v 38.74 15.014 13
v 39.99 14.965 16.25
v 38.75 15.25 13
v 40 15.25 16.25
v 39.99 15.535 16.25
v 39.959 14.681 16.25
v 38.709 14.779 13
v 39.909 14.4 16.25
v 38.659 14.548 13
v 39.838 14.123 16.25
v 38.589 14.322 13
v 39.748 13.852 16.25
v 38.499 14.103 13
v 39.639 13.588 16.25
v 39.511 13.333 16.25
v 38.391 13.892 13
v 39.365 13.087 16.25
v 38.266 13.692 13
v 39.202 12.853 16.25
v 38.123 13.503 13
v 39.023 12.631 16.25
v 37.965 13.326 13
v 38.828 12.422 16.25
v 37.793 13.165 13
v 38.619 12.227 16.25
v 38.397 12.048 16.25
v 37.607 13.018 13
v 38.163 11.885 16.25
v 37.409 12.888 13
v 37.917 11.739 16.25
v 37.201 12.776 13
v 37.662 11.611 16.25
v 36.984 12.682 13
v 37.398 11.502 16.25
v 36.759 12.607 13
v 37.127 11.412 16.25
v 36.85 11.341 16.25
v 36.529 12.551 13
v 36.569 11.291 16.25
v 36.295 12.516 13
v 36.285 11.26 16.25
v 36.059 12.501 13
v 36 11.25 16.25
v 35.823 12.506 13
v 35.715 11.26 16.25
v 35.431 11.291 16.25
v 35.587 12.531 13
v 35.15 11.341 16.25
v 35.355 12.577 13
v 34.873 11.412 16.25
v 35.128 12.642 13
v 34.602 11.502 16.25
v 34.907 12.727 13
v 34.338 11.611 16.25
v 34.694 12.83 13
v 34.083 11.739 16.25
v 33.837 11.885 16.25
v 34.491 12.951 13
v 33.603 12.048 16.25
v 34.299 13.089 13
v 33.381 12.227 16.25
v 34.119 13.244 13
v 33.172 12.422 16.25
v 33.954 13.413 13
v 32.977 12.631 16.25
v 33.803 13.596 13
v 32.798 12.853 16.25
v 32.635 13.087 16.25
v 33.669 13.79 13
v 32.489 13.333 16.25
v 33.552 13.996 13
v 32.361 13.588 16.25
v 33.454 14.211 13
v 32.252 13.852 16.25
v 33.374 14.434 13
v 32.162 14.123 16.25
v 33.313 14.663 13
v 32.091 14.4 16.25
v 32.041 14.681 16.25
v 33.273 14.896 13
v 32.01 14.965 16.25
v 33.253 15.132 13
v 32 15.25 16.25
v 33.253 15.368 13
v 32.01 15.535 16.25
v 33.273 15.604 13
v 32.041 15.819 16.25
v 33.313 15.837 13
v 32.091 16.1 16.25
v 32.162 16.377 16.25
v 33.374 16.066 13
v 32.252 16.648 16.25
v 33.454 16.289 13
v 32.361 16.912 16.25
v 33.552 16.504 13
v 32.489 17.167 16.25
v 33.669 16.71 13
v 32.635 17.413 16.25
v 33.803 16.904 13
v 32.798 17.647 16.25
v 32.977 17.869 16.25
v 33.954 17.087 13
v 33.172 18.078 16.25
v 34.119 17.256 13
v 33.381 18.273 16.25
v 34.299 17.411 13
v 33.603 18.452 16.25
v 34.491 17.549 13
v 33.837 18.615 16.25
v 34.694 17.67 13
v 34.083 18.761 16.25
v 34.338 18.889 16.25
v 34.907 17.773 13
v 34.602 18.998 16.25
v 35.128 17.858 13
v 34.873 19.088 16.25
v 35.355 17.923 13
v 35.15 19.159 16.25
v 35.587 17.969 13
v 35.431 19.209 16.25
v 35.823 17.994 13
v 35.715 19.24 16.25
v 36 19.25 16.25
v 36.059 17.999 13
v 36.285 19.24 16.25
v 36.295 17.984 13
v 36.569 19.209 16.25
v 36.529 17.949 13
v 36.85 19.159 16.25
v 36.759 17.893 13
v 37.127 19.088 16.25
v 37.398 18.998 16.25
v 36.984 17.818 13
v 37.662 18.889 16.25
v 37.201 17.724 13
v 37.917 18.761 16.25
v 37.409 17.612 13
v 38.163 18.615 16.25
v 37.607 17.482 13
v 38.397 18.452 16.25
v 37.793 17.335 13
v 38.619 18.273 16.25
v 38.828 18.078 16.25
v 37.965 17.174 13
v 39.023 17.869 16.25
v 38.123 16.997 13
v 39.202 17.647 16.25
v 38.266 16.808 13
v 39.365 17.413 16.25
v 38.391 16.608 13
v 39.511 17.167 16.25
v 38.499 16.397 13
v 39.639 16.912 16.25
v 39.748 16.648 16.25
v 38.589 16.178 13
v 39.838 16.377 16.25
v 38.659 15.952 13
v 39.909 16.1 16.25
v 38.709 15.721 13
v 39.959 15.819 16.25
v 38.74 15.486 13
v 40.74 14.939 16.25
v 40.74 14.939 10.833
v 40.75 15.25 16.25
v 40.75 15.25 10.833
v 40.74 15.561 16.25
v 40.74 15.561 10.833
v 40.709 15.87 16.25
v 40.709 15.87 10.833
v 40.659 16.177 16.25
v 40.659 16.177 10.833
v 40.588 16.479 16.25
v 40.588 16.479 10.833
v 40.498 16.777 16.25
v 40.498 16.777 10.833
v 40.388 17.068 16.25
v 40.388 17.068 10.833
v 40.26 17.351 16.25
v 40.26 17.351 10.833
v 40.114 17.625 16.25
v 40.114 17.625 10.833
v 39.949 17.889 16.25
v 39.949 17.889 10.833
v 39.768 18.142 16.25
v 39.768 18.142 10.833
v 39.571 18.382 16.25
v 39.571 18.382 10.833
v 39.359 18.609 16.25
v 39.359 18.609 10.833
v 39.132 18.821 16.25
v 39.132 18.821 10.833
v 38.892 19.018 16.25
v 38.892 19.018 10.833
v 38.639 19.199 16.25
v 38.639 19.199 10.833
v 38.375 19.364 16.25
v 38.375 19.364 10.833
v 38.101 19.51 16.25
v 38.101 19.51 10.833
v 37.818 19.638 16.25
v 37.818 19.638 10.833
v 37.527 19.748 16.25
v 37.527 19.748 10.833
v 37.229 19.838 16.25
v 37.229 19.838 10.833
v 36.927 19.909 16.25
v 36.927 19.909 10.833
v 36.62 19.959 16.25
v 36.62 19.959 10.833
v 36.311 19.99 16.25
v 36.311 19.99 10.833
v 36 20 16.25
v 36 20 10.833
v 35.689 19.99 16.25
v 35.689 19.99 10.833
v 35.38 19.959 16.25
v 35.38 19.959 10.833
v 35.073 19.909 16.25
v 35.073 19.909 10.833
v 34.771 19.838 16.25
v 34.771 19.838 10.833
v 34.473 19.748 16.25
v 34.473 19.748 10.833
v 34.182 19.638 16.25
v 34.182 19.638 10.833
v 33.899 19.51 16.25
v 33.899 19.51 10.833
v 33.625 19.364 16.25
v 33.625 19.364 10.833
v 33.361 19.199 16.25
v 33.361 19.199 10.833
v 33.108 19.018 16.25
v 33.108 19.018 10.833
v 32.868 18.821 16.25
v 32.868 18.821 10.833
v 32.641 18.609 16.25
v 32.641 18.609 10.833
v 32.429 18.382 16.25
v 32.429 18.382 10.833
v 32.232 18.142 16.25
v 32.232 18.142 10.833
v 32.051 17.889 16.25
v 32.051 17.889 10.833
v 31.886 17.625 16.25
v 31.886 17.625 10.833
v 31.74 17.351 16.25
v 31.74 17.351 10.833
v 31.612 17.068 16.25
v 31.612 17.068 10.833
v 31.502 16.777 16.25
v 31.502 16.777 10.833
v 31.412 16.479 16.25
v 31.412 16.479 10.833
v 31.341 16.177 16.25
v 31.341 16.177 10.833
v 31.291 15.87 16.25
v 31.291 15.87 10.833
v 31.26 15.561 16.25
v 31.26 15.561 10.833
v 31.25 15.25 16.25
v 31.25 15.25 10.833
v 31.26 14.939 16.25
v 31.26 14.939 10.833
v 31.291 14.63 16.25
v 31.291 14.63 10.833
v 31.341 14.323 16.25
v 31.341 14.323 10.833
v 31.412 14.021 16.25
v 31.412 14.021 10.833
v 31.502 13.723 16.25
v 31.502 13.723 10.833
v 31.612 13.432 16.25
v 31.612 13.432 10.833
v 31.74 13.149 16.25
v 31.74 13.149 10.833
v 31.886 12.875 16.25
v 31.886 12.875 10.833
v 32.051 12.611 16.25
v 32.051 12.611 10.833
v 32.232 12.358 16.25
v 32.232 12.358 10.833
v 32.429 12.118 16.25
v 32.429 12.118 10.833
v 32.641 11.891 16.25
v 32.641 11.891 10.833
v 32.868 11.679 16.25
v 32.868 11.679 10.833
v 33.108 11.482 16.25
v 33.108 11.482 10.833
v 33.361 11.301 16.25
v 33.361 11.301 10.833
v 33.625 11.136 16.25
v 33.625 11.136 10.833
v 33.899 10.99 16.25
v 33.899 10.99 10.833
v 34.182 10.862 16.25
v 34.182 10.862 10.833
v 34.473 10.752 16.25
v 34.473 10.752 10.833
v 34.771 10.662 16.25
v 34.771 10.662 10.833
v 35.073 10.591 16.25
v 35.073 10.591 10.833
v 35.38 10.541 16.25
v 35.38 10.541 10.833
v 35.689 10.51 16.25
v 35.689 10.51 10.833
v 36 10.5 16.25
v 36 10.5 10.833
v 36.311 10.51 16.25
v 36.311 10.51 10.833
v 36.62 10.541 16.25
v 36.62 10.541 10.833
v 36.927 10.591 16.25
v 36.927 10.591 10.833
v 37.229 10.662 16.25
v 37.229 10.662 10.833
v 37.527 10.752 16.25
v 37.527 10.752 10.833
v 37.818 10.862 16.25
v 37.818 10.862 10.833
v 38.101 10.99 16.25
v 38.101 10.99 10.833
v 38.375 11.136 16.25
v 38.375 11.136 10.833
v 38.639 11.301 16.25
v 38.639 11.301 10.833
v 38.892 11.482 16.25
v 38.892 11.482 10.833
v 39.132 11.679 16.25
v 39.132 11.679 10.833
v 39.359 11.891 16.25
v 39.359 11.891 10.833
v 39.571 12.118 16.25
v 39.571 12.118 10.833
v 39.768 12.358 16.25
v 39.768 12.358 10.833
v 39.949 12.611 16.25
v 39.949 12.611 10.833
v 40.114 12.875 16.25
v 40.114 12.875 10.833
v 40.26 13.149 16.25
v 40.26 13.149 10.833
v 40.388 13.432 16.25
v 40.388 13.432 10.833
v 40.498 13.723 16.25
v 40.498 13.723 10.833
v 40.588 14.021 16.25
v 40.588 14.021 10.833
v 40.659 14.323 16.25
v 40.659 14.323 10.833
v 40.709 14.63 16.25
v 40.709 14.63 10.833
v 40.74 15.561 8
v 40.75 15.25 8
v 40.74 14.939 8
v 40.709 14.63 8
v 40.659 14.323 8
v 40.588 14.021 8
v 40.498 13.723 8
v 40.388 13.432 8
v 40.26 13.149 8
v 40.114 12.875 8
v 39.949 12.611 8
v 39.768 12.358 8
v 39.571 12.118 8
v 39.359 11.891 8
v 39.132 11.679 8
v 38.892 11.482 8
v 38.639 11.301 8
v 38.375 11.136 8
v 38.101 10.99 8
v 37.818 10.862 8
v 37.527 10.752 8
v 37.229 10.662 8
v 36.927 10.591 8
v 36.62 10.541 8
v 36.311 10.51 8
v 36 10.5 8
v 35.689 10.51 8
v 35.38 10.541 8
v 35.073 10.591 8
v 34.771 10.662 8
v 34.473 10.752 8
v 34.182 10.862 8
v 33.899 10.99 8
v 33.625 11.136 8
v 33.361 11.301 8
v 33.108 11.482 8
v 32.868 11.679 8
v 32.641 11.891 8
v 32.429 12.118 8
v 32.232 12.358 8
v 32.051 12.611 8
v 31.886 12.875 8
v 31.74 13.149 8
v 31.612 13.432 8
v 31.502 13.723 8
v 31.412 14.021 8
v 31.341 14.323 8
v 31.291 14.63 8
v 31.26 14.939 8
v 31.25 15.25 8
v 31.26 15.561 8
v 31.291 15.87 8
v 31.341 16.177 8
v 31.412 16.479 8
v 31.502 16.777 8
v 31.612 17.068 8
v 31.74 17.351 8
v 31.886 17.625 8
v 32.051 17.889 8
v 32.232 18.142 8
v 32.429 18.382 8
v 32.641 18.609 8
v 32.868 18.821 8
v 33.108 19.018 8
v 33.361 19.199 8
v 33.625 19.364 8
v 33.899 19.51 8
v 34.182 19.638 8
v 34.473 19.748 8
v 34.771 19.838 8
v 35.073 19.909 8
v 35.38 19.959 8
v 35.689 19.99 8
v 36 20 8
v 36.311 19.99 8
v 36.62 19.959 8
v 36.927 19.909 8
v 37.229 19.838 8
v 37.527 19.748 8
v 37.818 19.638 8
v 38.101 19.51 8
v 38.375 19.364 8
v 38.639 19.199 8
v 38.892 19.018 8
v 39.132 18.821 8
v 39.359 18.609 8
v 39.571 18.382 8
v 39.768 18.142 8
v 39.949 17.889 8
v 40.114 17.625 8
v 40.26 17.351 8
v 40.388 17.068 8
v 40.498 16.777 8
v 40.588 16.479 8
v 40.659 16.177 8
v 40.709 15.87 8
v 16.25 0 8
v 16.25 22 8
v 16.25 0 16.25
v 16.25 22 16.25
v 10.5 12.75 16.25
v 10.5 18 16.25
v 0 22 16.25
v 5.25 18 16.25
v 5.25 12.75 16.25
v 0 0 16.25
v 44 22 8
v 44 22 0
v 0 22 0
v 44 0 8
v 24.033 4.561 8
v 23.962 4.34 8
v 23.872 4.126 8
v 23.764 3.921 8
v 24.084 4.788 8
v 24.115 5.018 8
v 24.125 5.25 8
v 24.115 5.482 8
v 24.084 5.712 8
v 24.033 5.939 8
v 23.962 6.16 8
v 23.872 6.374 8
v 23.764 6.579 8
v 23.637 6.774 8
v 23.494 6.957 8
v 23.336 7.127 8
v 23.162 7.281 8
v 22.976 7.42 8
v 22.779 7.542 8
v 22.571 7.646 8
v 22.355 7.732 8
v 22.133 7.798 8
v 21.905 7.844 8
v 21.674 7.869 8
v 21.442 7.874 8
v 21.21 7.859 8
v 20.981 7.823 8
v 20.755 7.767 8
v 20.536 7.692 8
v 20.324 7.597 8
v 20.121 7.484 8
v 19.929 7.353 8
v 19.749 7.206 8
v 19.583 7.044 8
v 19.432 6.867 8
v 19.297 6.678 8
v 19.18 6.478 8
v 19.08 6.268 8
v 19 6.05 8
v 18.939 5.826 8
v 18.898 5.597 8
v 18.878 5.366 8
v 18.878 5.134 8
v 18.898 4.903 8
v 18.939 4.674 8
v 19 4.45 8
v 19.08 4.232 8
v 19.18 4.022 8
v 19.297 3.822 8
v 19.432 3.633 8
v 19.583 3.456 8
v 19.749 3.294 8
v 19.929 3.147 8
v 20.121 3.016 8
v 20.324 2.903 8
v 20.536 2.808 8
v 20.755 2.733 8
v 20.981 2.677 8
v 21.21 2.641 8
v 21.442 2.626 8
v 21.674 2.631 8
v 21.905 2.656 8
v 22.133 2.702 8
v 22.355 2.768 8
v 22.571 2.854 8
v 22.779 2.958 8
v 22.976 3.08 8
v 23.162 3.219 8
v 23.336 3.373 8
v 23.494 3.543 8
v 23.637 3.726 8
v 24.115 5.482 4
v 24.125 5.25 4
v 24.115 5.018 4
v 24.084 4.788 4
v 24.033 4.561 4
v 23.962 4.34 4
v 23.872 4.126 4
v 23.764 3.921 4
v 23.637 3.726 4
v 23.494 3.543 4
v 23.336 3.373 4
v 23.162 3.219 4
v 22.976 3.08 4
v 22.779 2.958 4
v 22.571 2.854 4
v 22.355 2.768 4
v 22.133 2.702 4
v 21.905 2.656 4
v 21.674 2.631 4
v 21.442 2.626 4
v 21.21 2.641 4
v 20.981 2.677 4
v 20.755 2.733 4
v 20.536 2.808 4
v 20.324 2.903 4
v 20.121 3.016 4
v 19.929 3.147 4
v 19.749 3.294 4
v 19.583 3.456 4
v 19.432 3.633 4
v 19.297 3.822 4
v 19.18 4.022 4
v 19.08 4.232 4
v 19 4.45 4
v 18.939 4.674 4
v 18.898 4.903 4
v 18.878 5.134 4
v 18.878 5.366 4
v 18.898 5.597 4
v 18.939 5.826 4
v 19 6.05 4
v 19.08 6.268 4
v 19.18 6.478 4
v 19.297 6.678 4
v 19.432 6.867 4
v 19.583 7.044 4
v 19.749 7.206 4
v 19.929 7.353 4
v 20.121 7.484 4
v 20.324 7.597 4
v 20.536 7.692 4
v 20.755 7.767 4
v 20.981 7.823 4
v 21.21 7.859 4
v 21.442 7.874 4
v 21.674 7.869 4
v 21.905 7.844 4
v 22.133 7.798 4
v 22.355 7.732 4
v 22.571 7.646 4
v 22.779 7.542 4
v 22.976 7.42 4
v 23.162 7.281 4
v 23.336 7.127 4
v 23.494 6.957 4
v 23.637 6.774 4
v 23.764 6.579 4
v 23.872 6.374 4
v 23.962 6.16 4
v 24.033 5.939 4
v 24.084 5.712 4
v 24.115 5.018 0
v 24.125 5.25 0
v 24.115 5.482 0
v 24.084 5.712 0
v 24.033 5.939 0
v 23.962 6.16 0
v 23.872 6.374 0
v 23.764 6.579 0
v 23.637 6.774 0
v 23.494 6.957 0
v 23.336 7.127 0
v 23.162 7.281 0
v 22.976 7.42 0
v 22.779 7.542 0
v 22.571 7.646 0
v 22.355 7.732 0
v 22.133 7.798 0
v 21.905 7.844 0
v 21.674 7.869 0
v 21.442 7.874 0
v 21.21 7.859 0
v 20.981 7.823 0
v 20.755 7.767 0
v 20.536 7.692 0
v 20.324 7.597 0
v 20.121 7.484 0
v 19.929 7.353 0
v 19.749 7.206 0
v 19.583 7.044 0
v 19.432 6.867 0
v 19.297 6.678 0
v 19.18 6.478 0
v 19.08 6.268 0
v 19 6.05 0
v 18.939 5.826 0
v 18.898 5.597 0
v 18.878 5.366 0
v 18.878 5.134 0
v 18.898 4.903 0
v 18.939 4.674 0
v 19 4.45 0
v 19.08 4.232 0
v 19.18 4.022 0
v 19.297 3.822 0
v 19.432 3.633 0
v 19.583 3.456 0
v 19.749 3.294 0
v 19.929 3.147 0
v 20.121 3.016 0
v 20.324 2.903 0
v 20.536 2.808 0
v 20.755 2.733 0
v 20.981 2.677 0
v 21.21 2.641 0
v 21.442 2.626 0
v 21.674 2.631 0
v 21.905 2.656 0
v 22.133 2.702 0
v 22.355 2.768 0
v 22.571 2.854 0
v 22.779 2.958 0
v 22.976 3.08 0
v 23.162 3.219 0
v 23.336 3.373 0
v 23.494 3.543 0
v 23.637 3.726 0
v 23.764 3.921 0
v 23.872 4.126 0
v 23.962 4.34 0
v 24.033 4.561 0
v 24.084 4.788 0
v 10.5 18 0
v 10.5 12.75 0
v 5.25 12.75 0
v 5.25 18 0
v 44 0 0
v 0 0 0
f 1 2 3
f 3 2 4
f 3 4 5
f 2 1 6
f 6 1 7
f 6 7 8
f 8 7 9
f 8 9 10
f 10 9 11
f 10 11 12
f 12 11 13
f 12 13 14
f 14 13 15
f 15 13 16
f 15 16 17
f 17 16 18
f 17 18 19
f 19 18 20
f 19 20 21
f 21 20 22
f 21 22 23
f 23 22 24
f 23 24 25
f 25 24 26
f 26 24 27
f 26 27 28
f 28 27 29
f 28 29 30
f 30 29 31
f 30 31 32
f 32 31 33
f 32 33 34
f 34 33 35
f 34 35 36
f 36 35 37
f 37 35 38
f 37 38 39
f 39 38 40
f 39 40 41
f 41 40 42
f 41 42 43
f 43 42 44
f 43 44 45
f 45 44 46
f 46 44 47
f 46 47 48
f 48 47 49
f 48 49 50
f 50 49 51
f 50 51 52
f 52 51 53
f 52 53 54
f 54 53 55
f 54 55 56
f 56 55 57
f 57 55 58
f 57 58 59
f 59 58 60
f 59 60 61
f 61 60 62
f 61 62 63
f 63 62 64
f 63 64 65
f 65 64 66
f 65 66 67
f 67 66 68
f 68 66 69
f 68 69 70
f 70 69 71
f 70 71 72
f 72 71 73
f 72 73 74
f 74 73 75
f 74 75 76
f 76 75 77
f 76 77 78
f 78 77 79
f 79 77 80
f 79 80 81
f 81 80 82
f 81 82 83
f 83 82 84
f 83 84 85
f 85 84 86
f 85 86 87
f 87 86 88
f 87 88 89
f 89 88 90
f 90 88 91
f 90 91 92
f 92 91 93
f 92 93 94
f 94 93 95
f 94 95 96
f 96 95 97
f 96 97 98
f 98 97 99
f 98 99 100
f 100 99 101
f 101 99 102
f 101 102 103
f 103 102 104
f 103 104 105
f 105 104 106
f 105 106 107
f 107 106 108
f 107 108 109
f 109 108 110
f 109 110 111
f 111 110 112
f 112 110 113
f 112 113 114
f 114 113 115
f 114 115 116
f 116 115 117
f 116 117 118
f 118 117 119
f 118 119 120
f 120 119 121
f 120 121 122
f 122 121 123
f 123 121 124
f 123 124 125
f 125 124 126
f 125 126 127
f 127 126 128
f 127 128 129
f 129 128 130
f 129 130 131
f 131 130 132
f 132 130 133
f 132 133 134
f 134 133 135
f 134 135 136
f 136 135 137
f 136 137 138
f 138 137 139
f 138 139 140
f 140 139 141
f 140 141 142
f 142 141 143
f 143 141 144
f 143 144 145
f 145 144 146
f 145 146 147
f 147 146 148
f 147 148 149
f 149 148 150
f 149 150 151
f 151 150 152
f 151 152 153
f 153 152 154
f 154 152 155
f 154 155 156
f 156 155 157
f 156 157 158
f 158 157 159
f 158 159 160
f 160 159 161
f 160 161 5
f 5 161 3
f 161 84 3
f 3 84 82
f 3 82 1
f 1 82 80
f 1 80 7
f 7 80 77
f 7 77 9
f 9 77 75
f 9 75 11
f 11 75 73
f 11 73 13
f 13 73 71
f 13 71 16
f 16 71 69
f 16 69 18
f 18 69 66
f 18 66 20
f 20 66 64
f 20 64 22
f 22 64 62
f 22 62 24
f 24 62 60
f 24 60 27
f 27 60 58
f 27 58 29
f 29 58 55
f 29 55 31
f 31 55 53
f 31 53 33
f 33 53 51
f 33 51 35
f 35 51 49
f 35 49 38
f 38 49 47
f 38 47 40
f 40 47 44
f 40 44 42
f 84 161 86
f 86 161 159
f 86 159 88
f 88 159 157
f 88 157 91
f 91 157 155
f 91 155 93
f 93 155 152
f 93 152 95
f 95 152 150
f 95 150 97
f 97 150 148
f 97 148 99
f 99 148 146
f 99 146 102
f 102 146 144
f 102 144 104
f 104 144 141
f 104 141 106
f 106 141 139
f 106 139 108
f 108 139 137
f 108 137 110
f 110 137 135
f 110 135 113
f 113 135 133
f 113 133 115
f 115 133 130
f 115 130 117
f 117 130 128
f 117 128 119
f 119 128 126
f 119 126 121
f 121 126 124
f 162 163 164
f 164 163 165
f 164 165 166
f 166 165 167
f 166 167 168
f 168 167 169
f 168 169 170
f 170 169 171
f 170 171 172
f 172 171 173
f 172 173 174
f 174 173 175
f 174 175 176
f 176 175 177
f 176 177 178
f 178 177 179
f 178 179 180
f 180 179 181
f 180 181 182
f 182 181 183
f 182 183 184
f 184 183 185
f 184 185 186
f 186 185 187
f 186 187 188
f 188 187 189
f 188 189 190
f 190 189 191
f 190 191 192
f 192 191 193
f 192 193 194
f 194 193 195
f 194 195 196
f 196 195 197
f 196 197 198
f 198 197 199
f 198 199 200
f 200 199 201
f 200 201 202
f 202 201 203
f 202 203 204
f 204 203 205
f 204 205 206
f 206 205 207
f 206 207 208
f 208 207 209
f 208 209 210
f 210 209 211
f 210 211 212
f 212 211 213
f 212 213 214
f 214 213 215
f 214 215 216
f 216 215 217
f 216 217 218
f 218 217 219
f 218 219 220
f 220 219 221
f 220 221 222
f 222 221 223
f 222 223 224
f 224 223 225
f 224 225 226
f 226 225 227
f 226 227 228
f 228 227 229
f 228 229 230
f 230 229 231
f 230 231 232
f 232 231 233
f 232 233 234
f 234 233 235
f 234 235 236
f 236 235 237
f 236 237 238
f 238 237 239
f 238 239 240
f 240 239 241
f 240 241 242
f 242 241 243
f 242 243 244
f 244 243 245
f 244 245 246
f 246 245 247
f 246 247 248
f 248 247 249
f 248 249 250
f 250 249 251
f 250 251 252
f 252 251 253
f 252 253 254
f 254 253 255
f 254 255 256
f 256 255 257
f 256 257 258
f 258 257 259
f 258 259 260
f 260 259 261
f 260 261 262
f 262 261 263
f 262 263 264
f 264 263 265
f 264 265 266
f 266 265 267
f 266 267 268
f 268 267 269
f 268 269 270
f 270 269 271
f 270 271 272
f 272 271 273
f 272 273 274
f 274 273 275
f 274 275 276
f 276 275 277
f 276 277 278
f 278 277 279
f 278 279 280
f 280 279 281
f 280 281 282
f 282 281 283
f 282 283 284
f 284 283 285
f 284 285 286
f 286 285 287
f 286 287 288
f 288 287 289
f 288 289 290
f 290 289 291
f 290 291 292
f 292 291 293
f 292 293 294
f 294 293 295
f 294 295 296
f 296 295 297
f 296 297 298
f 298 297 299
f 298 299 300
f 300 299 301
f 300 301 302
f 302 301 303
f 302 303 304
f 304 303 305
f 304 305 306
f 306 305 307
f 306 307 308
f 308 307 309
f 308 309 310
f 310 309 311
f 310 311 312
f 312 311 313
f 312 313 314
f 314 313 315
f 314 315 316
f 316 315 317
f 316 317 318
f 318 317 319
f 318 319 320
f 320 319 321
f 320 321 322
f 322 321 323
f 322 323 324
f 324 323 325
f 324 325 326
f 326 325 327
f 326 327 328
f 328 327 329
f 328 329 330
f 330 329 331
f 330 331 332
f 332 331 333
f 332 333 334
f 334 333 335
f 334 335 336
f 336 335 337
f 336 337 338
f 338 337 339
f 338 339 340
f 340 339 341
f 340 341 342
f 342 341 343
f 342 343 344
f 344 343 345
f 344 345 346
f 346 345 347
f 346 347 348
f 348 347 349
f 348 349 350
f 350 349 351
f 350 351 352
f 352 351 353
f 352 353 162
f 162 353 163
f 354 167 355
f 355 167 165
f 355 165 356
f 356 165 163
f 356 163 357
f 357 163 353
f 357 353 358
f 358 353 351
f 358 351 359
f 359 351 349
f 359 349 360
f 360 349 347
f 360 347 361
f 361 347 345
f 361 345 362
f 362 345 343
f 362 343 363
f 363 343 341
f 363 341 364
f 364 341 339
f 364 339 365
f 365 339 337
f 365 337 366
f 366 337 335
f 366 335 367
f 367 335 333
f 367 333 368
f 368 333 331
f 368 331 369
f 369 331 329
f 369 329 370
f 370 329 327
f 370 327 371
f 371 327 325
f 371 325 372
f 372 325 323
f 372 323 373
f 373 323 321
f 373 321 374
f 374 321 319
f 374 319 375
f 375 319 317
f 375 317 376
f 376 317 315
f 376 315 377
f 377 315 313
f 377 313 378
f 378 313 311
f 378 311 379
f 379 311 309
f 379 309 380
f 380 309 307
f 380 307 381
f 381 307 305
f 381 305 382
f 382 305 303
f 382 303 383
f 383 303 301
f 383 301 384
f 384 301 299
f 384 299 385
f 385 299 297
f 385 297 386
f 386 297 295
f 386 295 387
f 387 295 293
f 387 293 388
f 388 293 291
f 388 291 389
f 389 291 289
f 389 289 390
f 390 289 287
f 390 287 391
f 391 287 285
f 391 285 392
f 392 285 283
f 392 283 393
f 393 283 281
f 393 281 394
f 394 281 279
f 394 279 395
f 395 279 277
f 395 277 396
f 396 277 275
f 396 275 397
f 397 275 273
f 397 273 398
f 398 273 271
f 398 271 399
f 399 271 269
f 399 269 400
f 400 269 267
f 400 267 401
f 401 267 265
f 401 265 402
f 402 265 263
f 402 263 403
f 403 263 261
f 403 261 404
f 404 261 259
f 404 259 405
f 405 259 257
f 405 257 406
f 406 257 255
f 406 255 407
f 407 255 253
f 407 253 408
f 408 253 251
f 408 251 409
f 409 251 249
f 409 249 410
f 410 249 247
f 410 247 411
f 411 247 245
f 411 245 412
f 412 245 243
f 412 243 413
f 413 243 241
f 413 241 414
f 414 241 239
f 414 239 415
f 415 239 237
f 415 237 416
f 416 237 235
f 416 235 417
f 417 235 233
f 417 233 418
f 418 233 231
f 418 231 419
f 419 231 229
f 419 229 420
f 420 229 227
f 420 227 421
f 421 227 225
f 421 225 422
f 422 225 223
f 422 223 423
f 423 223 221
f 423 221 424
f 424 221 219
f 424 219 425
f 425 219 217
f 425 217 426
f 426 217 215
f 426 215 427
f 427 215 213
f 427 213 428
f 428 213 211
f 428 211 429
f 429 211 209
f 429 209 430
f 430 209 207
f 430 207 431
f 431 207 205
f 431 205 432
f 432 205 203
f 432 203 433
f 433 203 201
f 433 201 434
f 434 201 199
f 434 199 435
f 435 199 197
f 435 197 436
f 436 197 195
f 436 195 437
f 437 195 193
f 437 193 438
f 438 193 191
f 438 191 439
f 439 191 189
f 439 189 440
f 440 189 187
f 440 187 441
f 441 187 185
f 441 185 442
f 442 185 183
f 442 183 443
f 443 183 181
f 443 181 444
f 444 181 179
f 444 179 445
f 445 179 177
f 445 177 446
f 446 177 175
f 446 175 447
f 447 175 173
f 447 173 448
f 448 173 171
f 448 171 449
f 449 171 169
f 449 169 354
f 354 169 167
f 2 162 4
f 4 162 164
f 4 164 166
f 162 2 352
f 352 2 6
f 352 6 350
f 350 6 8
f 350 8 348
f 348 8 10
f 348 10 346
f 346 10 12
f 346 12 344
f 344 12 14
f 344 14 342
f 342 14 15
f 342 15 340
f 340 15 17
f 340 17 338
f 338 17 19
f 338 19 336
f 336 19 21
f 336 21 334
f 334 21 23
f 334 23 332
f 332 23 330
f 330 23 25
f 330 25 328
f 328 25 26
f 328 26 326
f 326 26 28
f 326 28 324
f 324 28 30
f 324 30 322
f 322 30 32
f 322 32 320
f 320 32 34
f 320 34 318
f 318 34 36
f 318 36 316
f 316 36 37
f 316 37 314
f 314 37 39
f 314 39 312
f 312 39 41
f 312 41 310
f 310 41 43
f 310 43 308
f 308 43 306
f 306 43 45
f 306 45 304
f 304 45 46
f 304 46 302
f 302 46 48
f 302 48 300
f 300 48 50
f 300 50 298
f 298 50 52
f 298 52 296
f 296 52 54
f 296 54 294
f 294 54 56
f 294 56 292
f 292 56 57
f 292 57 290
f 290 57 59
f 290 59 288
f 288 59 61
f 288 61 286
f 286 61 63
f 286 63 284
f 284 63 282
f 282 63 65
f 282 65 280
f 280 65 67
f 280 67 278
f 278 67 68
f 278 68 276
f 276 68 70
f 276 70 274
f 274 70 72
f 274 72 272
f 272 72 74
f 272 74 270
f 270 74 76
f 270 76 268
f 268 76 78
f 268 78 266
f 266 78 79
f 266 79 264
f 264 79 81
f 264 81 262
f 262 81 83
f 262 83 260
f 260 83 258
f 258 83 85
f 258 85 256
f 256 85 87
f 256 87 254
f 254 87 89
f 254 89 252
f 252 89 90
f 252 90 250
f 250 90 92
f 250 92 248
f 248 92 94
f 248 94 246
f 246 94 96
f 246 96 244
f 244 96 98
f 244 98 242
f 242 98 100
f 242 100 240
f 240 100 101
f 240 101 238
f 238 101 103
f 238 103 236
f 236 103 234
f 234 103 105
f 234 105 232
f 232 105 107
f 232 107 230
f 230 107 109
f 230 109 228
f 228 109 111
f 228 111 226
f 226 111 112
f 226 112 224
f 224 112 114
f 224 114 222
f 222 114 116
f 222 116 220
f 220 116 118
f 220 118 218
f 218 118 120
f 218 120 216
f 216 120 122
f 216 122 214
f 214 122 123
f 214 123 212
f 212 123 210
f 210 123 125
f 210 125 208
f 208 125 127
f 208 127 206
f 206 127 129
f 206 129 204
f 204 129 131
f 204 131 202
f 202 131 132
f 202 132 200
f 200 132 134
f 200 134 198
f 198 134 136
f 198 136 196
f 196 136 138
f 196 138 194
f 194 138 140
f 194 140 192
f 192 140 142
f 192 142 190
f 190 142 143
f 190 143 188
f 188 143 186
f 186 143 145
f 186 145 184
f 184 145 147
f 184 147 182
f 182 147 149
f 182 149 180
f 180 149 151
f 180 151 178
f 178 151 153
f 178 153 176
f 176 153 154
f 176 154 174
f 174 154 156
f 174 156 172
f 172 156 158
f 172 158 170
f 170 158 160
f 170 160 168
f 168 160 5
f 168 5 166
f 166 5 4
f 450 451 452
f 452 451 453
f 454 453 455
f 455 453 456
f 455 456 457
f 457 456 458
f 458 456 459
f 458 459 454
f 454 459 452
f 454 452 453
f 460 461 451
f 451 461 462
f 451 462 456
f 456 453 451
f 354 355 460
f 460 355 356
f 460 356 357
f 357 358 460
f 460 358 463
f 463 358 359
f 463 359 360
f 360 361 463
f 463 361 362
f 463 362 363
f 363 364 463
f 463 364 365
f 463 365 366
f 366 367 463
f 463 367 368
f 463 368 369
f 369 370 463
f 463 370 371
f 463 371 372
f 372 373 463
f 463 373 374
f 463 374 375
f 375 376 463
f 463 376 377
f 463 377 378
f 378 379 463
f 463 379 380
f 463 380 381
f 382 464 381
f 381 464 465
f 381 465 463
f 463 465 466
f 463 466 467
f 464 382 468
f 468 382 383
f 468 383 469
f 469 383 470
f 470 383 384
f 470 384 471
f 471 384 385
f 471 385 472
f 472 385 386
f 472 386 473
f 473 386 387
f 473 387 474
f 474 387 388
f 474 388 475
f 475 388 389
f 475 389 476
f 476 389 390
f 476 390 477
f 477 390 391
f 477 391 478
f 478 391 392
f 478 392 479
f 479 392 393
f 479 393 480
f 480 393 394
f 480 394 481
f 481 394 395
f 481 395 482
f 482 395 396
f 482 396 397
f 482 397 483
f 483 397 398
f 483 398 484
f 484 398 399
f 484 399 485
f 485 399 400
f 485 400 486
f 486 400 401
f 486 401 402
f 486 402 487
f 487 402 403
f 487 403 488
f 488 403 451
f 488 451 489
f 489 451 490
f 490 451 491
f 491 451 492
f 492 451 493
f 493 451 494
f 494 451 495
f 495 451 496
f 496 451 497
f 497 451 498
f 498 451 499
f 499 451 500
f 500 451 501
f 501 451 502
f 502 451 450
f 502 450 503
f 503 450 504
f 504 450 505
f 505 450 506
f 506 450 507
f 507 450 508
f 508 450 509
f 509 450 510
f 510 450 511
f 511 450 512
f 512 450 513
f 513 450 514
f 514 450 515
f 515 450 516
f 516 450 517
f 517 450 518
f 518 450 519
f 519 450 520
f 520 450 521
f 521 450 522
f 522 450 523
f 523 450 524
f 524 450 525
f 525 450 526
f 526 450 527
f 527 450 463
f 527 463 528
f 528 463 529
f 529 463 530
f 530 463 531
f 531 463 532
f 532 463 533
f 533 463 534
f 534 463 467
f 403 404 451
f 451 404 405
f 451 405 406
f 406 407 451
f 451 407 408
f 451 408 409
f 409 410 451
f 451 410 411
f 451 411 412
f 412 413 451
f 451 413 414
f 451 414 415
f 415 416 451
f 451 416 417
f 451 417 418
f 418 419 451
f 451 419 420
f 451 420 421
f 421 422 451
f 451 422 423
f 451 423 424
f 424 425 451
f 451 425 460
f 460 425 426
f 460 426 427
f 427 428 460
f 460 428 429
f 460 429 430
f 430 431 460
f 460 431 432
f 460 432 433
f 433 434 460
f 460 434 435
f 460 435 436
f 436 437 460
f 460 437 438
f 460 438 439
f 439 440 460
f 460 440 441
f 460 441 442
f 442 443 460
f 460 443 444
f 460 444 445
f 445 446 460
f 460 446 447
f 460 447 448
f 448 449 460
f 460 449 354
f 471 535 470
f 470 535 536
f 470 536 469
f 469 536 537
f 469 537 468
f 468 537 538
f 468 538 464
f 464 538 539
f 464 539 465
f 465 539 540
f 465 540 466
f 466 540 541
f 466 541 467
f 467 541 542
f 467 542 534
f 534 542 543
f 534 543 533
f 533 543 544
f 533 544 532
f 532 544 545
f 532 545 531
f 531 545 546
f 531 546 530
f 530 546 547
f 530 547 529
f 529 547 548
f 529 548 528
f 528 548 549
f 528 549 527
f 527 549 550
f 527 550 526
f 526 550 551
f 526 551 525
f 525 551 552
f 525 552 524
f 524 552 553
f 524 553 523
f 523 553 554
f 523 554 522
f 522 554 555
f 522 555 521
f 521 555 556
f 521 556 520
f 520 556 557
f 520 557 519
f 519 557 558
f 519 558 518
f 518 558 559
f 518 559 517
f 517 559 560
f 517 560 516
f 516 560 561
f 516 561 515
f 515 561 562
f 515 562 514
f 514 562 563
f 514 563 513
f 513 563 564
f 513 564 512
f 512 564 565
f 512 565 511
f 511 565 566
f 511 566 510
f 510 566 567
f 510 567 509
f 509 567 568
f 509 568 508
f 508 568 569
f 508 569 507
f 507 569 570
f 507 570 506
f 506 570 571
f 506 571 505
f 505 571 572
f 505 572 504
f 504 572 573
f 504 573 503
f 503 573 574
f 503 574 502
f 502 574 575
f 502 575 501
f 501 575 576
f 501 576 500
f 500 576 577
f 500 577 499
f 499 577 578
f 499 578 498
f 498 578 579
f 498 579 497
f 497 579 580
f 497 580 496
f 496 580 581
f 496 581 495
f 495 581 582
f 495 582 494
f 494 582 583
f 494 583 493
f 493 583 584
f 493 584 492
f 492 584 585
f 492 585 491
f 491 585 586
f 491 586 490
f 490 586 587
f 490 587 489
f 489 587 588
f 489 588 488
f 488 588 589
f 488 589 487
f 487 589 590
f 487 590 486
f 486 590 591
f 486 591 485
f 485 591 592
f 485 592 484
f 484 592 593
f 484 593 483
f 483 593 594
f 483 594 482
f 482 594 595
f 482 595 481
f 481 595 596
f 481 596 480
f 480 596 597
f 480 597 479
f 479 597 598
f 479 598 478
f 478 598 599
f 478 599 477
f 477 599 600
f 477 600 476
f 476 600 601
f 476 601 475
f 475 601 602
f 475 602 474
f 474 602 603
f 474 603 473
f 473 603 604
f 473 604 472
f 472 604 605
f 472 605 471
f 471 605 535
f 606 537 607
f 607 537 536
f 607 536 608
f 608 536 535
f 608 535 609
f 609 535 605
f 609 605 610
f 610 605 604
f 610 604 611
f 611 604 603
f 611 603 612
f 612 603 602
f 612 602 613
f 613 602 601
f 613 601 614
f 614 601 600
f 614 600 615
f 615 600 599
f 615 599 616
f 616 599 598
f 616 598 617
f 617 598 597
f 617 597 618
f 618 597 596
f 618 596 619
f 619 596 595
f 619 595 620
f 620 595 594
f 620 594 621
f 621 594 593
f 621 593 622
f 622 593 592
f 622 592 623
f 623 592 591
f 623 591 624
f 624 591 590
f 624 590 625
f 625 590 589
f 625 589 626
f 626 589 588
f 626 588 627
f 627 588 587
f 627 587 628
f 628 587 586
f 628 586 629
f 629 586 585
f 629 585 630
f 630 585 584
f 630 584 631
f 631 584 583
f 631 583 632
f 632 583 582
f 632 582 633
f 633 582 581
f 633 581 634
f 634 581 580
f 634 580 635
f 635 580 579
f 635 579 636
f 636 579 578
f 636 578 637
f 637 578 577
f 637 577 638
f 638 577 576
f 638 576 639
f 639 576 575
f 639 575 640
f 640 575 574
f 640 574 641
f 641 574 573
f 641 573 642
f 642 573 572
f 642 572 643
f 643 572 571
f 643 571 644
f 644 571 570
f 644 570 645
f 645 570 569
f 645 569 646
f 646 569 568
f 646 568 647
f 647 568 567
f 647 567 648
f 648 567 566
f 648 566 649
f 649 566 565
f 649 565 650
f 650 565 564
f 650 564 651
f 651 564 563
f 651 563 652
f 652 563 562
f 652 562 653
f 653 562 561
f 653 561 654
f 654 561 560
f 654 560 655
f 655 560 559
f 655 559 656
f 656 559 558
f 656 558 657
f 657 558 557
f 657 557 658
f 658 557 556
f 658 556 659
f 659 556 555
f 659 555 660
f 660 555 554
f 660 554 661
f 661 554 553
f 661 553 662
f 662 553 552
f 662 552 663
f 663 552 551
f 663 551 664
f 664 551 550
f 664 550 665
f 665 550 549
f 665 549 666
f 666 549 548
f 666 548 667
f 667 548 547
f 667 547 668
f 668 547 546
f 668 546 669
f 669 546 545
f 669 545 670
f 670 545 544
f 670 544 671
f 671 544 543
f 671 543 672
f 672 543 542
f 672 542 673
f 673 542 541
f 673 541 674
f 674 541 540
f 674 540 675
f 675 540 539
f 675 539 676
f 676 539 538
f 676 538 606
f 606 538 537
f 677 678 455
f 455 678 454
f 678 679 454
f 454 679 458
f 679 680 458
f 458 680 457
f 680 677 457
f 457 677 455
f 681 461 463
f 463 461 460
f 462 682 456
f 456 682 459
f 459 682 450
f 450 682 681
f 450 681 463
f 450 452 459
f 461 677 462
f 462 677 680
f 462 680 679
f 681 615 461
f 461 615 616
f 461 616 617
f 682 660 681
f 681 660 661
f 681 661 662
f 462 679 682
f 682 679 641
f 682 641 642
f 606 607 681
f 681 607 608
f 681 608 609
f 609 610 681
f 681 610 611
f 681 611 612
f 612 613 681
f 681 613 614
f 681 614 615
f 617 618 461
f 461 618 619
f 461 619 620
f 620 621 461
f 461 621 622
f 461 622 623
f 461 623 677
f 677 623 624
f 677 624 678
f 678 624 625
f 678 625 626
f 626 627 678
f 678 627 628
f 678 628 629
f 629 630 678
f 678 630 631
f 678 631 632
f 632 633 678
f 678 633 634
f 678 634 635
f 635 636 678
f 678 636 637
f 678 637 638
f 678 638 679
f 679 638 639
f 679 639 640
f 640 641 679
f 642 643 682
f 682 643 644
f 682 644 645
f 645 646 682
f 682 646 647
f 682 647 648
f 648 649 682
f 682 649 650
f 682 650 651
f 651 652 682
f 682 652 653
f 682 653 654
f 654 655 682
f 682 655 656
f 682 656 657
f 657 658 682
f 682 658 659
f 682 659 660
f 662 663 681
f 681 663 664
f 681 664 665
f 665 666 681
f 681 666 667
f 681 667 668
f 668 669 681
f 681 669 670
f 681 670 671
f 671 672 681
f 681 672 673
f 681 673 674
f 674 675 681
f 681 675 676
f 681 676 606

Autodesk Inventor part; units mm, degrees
ref_plane "YZ Plane" through (0, 0, 0) normal (1, 0, 0) x (0, 1, 0)
ref_plane "XZ Plane" through (0, 0, 0) normal (0, 1, 0) x (-1, 0, 0)
ref_plane "XY Plane" through (0, 0, 0) normal (0, 0, 1) x (1, 0, 0)
sketch "Sketch1" plane through (0, 0, 0) normal (0, 0, 1) x (1, 0, 0)
  line L0 (0, 0) -> (16.25, 0)
  line L1 (44, 0) -> (44, 22)
  line L2 (44, 22) -> (16.25, 22)
  line L3 (0, 22) -> (0, 0)
  line L4 (5.25, 18) -> (10.5, 18)
  line L5 (10.5, 18) -> (10.5, 12.75)
  line L6 (10.5, 12.75) -> (5.25, 12.75)
  line L7 (5.25, 12.75) -> (5.25, 18)
  line L8 (16.25, 22) -> (16.25, 0)
  line L9 (16.25, 22) -> (0, 22)
  line L10 (16.25, 0) -> (44, 0)
  circle A0 centre (21.5, 5.25) radius 2.625
  circle A1 centre (36, 15.25) radius 4.75
  circle A2 centre (36, 15.25) radius 4
  circle A3 centre (36, 15.25) radius 2.625
  dimension "d0" = 44
  dimension "d1" = 22
  dimension "d2" = 5.25
  dimension "d3" = 5.25
  dimension "d4" = 16.25
  dimension "d5" = 5.25
  dimension "d6" = 5.25
  dimension "d7" = 5.25
  dimension "d8" = 4
  dimension "d9" = 5.25
  dimension "d10" = 6.75
  dimension "d11" = 8
  dimension "d12" = 5.25
  dimension "d13" = 8
  dimension "d14" = 9.5
extrude "Extrusion1" add sketch "Sketch1" along normal blind 8 contours L3 L9 L8 L0 | L8 L2 L1 L10 | A1 | A2 | A3
extrude "Extrusion2" add sketch "Sketch1" along normal blind 16.25 contours L3 L9 L8 L0 | A1
extrude "Extrusion3" add sketch "Sketch1" along normal blind 13 contours A2 | A3
chamfer "Chamfer1" distance 3.25 distance2 1.25 1 edges at (32, 15.25, 13) measured on face at (39.987, 14.9281, 15.1667)
